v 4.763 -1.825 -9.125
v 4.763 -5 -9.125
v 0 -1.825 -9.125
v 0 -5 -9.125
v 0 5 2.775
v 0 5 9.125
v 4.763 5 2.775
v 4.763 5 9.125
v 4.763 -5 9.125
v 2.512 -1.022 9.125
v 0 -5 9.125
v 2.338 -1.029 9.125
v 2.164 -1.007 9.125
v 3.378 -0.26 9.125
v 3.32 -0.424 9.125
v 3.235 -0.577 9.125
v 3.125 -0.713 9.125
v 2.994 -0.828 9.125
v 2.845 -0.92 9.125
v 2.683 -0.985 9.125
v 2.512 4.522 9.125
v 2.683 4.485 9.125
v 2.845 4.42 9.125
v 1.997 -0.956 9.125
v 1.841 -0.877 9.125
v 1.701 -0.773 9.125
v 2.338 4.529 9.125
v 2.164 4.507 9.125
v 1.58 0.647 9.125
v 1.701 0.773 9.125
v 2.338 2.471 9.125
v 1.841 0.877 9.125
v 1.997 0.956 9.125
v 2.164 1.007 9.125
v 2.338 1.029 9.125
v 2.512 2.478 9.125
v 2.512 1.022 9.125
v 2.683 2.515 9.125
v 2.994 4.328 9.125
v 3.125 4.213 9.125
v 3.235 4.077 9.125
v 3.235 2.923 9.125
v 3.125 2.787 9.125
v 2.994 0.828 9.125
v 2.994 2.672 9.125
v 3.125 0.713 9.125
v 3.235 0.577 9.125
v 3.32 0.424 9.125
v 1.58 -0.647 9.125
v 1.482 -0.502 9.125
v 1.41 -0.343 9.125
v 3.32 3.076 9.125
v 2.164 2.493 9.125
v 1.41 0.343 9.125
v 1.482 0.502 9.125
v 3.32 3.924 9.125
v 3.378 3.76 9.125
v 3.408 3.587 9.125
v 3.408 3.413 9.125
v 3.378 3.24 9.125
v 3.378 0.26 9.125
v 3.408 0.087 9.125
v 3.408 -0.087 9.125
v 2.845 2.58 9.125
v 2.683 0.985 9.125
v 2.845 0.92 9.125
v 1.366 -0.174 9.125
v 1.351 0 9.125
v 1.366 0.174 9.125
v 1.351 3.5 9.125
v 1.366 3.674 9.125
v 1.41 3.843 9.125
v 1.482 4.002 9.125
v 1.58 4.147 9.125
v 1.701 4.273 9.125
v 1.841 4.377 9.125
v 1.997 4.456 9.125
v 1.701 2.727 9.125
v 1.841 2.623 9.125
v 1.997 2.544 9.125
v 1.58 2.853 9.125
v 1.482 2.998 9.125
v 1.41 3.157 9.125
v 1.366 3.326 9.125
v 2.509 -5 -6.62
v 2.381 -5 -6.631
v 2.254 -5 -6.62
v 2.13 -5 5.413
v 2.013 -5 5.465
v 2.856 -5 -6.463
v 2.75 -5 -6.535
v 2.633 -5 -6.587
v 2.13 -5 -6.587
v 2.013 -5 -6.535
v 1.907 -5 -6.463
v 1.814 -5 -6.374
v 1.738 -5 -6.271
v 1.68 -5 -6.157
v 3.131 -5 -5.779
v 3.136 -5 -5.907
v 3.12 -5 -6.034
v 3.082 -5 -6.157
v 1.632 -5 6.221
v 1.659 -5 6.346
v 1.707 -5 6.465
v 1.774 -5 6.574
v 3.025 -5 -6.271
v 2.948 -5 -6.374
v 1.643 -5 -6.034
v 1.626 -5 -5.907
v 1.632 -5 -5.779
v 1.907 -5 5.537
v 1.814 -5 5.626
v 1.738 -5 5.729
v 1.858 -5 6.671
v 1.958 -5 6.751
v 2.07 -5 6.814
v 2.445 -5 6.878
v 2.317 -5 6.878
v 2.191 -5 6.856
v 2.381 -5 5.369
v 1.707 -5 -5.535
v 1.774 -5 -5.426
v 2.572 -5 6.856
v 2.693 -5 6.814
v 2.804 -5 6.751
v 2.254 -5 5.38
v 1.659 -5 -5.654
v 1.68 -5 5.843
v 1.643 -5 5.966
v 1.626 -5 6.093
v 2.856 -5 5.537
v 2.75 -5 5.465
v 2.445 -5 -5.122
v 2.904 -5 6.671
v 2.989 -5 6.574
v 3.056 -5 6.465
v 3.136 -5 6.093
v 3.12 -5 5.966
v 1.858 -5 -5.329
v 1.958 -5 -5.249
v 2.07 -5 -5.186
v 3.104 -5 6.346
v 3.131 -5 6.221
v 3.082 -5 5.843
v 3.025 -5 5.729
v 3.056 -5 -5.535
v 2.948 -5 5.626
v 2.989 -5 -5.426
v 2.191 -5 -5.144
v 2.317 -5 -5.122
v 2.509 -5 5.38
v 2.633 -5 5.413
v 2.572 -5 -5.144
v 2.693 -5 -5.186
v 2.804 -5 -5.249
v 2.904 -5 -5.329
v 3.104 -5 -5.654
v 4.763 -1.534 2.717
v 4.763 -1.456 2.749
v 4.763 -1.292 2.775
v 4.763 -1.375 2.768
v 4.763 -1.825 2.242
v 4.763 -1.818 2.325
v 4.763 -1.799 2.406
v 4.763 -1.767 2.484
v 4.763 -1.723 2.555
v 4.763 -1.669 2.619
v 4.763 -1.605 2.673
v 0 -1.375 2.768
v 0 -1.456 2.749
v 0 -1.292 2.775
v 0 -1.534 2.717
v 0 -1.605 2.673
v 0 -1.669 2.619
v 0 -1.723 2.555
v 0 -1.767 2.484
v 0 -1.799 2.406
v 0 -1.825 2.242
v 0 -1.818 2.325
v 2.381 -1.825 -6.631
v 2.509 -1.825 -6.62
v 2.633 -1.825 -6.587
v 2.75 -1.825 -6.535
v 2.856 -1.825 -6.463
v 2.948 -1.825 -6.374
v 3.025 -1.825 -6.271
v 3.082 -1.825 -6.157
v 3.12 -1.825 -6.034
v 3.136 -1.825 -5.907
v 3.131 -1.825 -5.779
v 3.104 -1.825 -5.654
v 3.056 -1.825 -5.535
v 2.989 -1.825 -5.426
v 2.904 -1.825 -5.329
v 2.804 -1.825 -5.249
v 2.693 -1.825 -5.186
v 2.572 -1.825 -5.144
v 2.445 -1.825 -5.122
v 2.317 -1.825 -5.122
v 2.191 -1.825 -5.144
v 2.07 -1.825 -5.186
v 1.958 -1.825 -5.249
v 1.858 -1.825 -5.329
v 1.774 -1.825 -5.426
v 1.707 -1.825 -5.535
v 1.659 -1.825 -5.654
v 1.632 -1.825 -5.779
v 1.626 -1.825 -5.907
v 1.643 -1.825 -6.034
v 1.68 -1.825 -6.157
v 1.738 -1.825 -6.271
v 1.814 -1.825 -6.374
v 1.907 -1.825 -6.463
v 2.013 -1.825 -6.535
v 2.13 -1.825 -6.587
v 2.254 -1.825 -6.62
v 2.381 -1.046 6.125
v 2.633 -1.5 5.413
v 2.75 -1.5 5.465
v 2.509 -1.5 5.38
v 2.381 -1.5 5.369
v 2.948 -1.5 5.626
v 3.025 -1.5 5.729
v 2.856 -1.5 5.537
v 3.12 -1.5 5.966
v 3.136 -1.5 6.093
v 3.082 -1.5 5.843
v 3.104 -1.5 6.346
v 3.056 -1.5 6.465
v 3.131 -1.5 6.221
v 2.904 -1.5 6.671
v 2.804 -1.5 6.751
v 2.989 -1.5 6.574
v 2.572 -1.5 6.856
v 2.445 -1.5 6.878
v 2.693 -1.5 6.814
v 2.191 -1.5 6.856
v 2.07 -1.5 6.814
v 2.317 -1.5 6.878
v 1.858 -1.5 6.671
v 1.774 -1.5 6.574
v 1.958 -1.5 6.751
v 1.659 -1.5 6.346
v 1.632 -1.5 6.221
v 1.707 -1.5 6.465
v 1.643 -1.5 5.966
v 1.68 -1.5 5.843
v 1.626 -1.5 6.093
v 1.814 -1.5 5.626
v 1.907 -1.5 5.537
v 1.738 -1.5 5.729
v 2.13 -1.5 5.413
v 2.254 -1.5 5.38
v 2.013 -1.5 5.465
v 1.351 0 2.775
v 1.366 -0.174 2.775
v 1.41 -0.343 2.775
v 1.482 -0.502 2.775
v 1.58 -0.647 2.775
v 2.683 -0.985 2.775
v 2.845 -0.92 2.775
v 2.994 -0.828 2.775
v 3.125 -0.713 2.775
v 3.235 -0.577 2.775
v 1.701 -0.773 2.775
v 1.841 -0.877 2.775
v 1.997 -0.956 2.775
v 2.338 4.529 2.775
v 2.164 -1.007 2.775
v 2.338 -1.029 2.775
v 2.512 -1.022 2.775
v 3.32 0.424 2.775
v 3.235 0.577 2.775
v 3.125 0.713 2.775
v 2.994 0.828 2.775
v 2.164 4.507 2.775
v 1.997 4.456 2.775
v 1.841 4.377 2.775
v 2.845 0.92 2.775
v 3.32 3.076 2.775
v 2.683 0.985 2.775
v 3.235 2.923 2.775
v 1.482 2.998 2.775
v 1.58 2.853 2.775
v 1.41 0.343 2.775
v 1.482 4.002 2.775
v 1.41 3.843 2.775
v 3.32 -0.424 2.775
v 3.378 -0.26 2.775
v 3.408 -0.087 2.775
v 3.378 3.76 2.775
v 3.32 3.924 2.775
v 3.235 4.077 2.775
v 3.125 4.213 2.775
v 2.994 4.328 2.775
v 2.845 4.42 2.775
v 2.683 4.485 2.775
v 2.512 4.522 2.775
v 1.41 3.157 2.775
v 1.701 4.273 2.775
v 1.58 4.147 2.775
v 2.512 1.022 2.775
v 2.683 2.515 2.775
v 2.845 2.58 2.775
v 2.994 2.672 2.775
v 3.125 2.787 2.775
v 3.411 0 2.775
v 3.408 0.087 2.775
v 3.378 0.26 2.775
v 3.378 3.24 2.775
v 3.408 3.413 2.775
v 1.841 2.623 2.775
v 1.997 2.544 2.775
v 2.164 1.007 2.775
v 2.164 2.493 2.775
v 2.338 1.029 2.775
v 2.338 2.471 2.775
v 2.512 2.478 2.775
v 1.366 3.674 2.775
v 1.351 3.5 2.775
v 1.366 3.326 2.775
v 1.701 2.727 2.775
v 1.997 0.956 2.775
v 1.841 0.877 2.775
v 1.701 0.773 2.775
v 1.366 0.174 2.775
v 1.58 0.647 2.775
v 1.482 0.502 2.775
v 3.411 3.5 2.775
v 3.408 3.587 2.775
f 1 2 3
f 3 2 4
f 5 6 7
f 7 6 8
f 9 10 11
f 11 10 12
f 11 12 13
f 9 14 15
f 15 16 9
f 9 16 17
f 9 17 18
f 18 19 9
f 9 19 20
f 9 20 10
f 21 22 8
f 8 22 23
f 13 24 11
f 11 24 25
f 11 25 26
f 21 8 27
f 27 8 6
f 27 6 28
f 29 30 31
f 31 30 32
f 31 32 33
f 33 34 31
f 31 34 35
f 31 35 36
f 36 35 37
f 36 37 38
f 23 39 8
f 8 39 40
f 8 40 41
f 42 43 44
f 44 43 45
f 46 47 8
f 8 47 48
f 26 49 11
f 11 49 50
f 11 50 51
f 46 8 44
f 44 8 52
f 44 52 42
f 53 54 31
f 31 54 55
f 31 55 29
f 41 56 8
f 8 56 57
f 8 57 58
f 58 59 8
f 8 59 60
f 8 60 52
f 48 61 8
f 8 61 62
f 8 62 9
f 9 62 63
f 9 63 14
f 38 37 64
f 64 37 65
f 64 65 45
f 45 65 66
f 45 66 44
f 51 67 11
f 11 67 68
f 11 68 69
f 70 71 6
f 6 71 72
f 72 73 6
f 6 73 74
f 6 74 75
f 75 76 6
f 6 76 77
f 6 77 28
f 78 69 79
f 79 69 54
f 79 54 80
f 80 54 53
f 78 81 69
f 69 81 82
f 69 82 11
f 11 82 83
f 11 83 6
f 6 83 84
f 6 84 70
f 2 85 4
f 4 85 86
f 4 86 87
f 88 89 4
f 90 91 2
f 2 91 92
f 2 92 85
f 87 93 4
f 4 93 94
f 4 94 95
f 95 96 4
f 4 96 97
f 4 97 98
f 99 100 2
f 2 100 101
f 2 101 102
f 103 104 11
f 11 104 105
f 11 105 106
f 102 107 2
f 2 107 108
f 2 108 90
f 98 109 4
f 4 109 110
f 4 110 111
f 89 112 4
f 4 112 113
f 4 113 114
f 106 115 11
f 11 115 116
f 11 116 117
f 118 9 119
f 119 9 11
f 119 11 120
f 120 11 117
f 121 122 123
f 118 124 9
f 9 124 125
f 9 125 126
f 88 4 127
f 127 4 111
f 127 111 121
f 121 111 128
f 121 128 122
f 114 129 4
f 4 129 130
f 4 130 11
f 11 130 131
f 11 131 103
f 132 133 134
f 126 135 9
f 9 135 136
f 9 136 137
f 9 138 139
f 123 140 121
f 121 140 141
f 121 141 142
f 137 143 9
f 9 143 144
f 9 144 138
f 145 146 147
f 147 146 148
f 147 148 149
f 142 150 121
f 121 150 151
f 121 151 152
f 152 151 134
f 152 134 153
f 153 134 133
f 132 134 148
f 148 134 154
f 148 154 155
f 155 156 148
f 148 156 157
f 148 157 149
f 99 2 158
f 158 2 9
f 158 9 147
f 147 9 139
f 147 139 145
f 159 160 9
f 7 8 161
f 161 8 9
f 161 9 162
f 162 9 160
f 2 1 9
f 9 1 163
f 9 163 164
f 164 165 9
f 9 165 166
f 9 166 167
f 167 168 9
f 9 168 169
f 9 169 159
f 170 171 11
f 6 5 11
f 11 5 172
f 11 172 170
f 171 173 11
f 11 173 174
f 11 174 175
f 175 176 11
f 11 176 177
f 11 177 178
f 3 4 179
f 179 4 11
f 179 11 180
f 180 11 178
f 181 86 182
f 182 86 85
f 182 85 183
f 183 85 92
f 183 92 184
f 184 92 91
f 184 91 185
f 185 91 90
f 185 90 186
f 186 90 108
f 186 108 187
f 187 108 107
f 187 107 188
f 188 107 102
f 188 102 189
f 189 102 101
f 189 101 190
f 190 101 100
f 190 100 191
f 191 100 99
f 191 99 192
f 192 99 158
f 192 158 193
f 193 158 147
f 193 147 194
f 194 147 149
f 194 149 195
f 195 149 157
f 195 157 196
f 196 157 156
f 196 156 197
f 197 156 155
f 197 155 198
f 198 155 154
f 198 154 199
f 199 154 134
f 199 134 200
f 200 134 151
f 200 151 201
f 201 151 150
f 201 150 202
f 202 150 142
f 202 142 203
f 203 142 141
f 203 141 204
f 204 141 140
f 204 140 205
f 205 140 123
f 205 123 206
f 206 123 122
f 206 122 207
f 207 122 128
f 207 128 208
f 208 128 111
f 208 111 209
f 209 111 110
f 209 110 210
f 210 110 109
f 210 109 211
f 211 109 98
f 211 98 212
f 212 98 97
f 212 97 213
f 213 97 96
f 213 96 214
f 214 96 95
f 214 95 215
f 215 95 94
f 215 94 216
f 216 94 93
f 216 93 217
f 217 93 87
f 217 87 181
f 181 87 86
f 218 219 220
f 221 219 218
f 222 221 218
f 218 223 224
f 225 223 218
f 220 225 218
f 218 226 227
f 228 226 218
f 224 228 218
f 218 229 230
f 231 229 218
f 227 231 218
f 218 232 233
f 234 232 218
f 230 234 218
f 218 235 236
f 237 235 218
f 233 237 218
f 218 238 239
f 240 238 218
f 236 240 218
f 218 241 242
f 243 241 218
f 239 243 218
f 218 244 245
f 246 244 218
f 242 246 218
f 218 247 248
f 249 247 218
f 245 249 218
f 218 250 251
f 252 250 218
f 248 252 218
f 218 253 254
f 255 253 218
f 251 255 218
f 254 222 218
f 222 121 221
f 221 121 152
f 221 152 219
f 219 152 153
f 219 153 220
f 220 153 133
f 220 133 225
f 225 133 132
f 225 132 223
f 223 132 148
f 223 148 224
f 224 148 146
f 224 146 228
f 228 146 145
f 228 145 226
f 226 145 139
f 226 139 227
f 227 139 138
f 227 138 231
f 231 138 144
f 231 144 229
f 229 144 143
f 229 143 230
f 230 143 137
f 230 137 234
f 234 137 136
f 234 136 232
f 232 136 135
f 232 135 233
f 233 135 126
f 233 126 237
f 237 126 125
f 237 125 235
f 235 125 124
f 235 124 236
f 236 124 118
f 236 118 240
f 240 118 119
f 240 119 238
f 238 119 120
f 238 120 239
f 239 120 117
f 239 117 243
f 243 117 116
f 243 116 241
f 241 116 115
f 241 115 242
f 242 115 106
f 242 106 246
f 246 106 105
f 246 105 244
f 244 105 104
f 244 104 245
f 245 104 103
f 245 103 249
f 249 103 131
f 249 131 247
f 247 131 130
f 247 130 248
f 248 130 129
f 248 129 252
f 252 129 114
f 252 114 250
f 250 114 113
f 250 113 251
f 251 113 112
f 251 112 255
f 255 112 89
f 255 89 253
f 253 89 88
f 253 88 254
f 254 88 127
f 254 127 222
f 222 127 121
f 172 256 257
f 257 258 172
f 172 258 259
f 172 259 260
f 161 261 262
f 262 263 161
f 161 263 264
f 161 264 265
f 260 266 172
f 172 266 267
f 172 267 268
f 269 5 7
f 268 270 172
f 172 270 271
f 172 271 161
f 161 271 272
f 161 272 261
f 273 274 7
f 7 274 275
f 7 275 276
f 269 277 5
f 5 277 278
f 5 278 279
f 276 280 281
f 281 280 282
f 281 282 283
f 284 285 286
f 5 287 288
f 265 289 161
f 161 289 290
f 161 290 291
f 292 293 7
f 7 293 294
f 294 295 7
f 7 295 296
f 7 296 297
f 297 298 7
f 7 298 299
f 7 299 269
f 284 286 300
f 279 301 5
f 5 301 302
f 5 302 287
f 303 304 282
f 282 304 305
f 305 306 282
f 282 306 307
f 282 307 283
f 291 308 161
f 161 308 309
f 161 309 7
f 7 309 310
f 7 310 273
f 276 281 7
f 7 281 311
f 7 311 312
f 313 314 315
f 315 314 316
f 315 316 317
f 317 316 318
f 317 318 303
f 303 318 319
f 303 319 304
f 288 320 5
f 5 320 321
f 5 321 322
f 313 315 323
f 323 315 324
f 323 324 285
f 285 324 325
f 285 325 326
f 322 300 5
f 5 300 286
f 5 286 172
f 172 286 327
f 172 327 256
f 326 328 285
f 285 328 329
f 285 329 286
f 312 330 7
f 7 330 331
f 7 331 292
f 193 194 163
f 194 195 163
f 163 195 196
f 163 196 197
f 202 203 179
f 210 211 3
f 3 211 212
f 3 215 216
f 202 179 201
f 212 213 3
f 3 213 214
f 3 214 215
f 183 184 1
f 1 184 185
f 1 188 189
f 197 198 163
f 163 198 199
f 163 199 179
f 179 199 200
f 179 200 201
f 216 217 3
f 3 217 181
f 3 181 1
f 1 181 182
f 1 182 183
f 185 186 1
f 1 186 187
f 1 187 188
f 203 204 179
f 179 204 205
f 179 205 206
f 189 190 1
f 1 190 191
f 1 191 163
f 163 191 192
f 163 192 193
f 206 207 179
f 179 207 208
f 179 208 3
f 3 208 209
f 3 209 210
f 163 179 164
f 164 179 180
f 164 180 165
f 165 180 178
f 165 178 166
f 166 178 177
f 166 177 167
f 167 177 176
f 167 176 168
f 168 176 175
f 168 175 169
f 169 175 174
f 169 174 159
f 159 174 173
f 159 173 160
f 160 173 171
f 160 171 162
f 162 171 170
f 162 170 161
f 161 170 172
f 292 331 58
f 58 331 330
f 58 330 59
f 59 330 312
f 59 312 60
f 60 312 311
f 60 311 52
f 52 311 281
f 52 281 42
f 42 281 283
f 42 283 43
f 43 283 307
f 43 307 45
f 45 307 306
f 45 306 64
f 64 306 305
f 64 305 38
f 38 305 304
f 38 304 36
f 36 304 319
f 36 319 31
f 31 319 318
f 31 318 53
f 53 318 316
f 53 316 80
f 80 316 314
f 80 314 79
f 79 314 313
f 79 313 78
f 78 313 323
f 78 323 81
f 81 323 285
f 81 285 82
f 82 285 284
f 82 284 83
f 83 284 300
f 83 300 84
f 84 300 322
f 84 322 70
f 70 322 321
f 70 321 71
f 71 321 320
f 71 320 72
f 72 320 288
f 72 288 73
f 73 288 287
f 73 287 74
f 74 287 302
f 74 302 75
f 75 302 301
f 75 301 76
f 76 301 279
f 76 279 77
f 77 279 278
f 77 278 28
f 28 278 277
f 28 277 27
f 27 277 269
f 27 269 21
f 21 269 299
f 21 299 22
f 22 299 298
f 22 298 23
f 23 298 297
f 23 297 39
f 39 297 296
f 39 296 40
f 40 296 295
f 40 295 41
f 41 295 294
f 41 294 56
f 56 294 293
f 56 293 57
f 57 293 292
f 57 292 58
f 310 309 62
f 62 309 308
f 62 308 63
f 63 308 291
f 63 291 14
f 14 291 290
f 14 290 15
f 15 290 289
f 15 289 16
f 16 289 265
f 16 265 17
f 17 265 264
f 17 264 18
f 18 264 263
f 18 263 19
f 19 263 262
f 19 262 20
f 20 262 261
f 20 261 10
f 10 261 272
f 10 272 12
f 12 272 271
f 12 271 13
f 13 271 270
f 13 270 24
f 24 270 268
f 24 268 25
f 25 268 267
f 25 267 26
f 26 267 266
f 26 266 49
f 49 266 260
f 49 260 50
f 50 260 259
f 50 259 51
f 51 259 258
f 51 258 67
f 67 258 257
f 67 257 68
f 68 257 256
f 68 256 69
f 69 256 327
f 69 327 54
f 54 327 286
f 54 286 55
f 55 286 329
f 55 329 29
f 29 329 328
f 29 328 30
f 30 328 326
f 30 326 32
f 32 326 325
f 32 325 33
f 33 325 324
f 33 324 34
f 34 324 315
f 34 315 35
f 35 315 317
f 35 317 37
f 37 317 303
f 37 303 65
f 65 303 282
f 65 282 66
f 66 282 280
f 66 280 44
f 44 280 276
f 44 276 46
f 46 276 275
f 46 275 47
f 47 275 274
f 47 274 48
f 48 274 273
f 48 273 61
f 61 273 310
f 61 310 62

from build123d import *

# Parameters (mm, degrees)
SKETCH1_W                 = 18.25
SKETCH1_H                 = 10
BOSS_EXTRUDE1_DEPTH       = 4.7625
F_1_64_TAPPED_HOLE1_D     = 1.5113
F_1_64_TAPPED_HOLE1_DEPTH = 3.5
F_1_64_TAPPED_HOLE1_TIP   = 0.454040327
SKETCH5_W                 = 11.9
SKETCH5_H                 = 6.825
CUT_EXTRUDE2_DEPTH        = 10
FILLET1_R                 = 0.5334
SKETCH2_R                 = 1.03
CUT_EXTRUDE1_DEPTH        = 20.512660153


with BuildPart() as part:
    # Sketch1 → Boss-Extrude1 (new body)
    with BuildSketch(Plane(origin=(0, 0, 0), x_dir=(0, 0, -1), z_dir=(1, 0, 0))):
        Rectangle(SKETCH1_W, SKETCH1_H)
    extrude(amount=BOSS_EXTRUDE1_DEPTH)

    # #1-64 Tapped Hole1
    with Locations(Plane(origin=(0, -5, 0), x_dir=(-1, 0, 0), z_dir=(0, -1, 0))):
        with Locations((-2.38125, -6.125), (-2.38125, 5.875)):
            Hole(F_1_64_TAPPED_HOLE1_D / 2, depth=F_1_64_TAPPED_HOLE1_DEPTH)
            with Locations((0, 0, -(F_1_64_TAPPED_HOLE1_DEPTH + F_1_64_TAPPED_HOLE1_TIP / 2))):  # 118° drill point
                Cone(0, F_1_64_TAPPED_HOLE1_D / 2, F_1_64_TAPPED_HOLE1_TIP, mode=Mode.SUBTRACT)

    # Sketch5 → Cut-Extrude2 (cut)
    with BuildSketch(Plane(origin=(4.7625, 0, 0), x_dir=(0, 0, -1), z_dir=(1, 0, 0))):
        with Locations((3.175, 1.5875)):
            Rectangle(SKETCH5_W, SKETCH5_H)
    extrude(amount=-CUT_EXTRUDE2_DEPTH, mode=Mode.SUBTRACT)

    # Fillet1
    fillet1_edges = [part.edges().sort_by_distance(p)[0] for p in [
        (2.38125, -1.825, 2.775),
    ]]
    fillet(fillet1_edges, radius=FILLET1_R)

    # Sketch2 → Cut-Extrude1 (cut, through all)
    with BuildSketch(Plane(origin=(0, 0, -9.125), x_dir=(-1, 0, 0), z_dir=(0, 0, -1))):
        with Locations((-2.38125, 3.5)):
            Circle(SKETCH2_R)
        with Locations((-2.38125, 0)):
            Circle(SKETCH2_R)
    extrude(amount=-CUT_EXTRUDE1_DEPTH, mode=Mode.SUBTRACT)


solid = part.part
